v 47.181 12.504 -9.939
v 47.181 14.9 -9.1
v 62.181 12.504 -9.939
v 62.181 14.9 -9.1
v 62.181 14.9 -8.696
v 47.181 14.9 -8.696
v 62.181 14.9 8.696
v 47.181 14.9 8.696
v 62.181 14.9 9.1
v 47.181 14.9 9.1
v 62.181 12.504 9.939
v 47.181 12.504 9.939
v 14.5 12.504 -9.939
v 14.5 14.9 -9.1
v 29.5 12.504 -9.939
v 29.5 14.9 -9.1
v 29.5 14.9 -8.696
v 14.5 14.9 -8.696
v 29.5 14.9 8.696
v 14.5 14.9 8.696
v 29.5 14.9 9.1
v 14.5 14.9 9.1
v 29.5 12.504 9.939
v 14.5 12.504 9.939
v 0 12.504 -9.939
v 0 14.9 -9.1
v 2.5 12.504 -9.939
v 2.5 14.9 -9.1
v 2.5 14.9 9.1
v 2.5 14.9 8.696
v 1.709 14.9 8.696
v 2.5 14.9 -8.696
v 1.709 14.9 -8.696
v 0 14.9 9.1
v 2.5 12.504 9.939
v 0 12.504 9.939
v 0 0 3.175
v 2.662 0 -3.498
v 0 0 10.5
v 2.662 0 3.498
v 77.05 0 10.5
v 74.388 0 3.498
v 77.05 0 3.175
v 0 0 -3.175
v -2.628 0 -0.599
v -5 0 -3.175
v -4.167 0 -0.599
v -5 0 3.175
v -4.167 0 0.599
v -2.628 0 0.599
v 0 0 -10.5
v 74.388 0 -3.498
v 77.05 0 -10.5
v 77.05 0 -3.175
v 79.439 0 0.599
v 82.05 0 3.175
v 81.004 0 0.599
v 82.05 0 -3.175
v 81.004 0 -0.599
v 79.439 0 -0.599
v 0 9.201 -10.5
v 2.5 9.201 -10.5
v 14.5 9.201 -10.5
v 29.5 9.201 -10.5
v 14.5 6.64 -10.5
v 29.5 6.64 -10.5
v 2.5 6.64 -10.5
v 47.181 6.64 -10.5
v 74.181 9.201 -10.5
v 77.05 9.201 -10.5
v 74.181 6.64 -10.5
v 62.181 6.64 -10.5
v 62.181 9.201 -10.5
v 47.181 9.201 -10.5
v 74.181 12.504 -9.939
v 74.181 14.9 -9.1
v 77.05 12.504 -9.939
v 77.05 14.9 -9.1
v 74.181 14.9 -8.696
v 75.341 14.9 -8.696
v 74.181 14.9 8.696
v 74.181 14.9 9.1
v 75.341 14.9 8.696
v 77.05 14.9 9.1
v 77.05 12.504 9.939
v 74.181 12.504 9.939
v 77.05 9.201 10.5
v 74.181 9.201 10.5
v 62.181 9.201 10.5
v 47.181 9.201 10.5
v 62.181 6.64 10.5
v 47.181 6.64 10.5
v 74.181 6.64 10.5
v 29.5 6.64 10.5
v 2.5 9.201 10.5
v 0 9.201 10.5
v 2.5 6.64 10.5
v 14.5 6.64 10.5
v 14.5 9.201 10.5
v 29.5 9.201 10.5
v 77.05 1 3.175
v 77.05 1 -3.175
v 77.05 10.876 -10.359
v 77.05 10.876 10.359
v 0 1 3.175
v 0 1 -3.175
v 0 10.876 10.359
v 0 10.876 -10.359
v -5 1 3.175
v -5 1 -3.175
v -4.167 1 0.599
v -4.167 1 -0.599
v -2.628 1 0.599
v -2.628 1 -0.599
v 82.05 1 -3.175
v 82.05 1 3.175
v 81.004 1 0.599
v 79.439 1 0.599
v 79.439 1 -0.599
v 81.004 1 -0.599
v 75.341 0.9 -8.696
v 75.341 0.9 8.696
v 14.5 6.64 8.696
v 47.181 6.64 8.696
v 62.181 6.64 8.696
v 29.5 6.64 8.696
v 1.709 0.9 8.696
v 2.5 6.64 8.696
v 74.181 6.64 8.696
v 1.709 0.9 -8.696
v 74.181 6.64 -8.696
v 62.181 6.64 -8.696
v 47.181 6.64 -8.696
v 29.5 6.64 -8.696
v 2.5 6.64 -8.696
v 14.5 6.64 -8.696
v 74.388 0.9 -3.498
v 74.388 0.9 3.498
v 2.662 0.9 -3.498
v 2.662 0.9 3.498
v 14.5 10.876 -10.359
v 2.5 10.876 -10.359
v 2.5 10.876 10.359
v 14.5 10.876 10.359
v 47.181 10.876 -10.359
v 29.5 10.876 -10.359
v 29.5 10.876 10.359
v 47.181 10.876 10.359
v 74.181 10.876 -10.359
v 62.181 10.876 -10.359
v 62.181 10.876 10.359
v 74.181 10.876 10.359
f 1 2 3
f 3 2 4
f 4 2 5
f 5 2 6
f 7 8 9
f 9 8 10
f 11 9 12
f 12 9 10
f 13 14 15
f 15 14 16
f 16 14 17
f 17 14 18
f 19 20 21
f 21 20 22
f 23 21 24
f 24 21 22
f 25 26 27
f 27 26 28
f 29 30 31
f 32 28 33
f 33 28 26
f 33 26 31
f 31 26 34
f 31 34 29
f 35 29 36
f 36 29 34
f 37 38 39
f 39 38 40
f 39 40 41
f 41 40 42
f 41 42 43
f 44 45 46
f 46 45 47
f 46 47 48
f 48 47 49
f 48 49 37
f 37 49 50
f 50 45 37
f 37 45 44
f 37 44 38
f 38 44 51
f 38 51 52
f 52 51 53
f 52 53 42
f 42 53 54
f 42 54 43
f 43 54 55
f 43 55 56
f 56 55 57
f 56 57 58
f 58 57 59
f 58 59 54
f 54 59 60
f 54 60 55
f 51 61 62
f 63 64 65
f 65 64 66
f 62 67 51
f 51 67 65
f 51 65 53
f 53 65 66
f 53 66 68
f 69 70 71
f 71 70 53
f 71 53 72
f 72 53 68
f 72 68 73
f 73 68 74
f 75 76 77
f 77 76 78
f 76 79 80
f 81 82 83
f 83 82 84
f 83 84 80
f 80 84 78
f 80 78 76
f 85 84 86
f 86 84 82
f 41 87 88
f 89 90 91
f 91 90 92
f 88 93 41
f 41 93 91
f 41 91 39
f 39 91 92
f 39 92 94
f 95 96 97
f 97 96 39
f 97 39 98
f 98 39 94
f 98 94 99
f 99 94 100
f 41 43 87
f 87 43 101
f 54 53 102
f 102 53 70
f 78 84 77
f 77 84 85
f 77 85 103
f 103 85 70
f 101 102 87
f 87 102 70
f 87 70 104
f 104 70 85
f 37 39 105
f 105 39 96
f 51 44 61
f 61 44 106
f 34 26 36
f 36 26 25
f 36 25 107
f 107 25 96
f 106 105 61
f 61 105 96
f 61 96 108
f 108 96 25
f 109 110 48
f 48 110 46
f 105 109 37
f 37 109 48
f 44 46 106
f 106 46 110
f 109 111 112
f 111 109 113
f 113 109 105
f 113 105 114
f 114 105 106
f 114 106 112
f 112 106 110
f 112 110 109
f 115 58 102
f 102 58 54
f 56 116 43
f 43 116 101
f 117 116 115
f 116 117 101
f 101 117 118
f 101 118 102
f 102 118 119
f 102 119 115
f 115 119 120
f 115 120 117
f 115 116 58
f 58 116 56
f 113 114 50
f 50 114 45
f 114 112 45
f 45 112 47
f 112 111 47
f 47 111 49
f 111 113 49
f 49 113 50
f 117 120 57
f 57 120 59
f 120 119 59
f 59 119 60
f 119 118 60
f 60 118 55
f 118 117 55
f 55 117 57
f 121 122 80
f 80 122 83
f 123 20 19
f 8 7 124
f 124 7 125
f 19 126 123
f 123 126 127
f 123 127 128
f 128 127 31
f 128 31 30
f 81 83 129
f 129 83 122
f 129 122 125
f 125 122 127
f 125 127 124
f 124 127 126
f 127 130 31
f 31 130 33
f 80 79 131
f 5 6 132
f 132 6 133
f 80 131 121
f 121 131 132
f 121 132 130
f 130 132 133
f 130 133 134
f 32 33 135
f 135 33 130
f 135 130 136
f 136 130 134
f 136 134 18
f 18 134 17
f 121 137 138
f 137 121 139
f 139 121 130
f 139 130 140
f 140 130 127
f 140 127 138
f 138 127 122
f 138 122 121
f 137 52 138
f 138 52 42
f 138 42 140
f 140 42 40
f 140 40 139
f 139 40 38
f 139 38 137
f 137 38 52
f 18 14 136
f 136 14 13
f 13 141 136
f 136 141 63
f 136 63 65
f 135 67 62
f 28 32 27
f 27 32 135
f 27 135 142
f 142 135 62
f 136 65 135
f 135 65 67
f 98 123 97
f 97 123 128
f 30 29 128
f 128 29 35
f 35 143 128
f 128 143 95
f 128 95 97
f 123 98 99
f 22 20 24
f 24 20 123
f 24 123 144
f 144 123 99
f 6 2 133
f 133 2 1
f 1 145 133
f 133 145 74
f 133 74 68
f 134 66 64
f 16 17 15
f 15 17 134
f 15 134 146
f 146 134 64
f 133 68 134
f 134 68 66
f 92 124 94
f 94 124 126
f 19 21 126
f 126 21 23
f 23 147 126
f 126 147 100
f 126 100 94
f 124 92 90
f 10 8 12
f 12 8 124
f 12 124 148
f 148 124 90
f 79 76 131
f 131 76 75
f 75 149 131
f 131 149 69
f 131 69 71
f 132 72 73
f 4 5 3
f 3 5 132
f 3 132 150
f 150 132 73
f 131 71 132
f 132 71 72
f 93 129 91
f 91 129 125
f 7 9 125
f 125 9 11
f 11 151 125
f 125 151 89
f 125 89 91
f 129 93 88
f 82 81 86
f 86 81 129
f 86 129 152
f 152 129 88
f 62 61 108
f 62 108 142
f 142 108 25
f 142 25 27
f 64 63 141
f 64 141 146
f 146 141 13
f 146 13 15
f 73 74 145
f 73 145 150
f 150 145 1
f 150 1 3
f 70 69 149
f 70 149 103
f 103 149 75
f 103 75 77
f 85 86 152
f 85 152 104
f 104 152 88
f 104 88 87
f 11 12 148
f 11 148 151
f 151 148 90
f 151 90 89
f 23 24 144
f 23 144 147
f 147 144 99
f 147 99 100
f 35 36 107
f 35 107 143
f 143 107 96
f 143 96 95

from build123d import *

# Parameters (mm, degrees)
BOSS_EXTRU_1_DEPTH      = 77.05
ESQUISSE3_W             = 10
ESQUISSE3_H             = 6.35
BOSS_EXTRU_2_DEPTH      = 1
ESQUISSE5_W             = 1.539298861
ESQUISSE5_H             = 1.197636308
ESQUISSE5_W_2           = 1.565261684
ENL_V_MAT_EXTRU_1_DEPTH = 1
ESQUISSE6_W             = 73.632054576
ESQUISSE6_H             = 17.392646246
ENL_V_MAT_EXTRU_2_DEPTH = 14
ESQUISSE7_W             = 71.72564692
ESQUISSE7_H             = 6.995918618
ENL_V_MAT_EXTRU_3_DEPTH = 16
ESQUISSE8_W             = 12
ESQUISSE8_H             = 8.25967539
ESQUISSE8_W_2           = 17.68111001
ENL_V_MAT_EXTRU_4_DEPTH = 23
CONG_1_R                = 10


with BuildPart() as part:
    # Esquisse1 → Boss.-Extru.1 (new body)
    with BuildSketch(Plane(origin=(0, 0, 0), x_dir=(0, 0, -1), z_dir=(1, 0, 0))):
        Polygon((-10.5, 10.9), (-9.1, 14.9), (9.1, 14.9), (10.5, 10.9), (10.5, 0), (-10.5, 0), align=None)
    extrude(amount=BOSS_EXTRU_1_DEPTH)

    # Esquisse3 → Boss.-Extru.2 (add)
    with BuildSketch(Plane.XZ):
        Rectangle(ESQUISSE3_W, ESQUISSE3_H)
        with Locations((77.05, 0)):
            Rectangle(ESQUISSE3_W, ESQUISSE3_H)
    extrude(amount=-BOSS_EXTRU_2_DEPTH)

    # Esquisse5 → Enlèv. mat.-Extru.1 (cut)
    with BuildSketch(Plane.XZ):
        with Locations((-3.397480153, 0)):
            Rectangle(ESQUISSE5_W, ESQUISSE5_H)
        with Locations((80.22152685, 0)):
            Rectangle(ESQUISSE5_W_2, ESQUISSE5_H)
    extrude(amount=-ENL_V_MAT_EXTRU_1_DEPTH, mode=Mode.SUBTRACT)

    # Esquisse6 → Enlèv. mat.-Extru.2 (cut)
    with BuildSketch(Plane(origin=(0, 14.9, 0), x_dir=(1, 0, 0), z_dir=(0, 1, 0))):
        with Locations((38.525, 0)):
            Rectangle(ESQUISSE6_W, ESQUISSE6_H)
    extrude(amount=-ENL_V_MAT_EXTRU_2_DEPTH, mode=Mode.SUBTRACT)

    # Esquisse7 → Enlèv. mat.-Extru.3 (cut)
    with BuildSketch(Plane(origin=(0, 14.9, 0), x_dir=(1, 0, 0), z_dir=(0, 1, 0))):
        with Locations((38.525, 0)):
            Rectangle(ESQUISSE7_W, ESQUISSE7_H)
    extrude(amount=-ENL_V_MAT_EXTRU_3_DEPTH, mode=Mode.SUBTRACT)

    # Esquisse8 → Enlèv. mat.-Extru.4 (cut)
    with BuildSketch(Plane.XY.offset(10.5)):
        with Locations((8.5, 10.770162305)):
            Rectangle(ESQUISSE8_W, ESQUISSE8_H)
        with Locations((38.340555005, 10.770162305)):
            Rectangle(ESQUISSE8_W_2, ESQUISSE8_H)
        with Locations((68.18111001, 10.770162305)):
            Rectangle(ESQUISSE8_W, ESQUISSE8_H)
    extrude(amount=-ENL_V_MAT_EXTRU_4_DEPTH, mode=Mode.SUBTRACT)

    # Congé1
    cong_1_edges = [part.edges().sort_by_distance(p)[0] for p in [
        (75.615555005, 10.9, 10.5),
        (75.615555005, 10.9, -10.5),
        (1.25, 10.9, 10.5),
        (1.25, 10.9, -10.5),
        (22, 10.9, 10.5),
        (22, 10.9, -10.5),
        (54.68111001, 10.9, 10.5),
        (54.68111001, 10.9, -10.5),
    ]]
    fillet(cong_1_edges, radius=CONG_1_R)


solid = part.part
